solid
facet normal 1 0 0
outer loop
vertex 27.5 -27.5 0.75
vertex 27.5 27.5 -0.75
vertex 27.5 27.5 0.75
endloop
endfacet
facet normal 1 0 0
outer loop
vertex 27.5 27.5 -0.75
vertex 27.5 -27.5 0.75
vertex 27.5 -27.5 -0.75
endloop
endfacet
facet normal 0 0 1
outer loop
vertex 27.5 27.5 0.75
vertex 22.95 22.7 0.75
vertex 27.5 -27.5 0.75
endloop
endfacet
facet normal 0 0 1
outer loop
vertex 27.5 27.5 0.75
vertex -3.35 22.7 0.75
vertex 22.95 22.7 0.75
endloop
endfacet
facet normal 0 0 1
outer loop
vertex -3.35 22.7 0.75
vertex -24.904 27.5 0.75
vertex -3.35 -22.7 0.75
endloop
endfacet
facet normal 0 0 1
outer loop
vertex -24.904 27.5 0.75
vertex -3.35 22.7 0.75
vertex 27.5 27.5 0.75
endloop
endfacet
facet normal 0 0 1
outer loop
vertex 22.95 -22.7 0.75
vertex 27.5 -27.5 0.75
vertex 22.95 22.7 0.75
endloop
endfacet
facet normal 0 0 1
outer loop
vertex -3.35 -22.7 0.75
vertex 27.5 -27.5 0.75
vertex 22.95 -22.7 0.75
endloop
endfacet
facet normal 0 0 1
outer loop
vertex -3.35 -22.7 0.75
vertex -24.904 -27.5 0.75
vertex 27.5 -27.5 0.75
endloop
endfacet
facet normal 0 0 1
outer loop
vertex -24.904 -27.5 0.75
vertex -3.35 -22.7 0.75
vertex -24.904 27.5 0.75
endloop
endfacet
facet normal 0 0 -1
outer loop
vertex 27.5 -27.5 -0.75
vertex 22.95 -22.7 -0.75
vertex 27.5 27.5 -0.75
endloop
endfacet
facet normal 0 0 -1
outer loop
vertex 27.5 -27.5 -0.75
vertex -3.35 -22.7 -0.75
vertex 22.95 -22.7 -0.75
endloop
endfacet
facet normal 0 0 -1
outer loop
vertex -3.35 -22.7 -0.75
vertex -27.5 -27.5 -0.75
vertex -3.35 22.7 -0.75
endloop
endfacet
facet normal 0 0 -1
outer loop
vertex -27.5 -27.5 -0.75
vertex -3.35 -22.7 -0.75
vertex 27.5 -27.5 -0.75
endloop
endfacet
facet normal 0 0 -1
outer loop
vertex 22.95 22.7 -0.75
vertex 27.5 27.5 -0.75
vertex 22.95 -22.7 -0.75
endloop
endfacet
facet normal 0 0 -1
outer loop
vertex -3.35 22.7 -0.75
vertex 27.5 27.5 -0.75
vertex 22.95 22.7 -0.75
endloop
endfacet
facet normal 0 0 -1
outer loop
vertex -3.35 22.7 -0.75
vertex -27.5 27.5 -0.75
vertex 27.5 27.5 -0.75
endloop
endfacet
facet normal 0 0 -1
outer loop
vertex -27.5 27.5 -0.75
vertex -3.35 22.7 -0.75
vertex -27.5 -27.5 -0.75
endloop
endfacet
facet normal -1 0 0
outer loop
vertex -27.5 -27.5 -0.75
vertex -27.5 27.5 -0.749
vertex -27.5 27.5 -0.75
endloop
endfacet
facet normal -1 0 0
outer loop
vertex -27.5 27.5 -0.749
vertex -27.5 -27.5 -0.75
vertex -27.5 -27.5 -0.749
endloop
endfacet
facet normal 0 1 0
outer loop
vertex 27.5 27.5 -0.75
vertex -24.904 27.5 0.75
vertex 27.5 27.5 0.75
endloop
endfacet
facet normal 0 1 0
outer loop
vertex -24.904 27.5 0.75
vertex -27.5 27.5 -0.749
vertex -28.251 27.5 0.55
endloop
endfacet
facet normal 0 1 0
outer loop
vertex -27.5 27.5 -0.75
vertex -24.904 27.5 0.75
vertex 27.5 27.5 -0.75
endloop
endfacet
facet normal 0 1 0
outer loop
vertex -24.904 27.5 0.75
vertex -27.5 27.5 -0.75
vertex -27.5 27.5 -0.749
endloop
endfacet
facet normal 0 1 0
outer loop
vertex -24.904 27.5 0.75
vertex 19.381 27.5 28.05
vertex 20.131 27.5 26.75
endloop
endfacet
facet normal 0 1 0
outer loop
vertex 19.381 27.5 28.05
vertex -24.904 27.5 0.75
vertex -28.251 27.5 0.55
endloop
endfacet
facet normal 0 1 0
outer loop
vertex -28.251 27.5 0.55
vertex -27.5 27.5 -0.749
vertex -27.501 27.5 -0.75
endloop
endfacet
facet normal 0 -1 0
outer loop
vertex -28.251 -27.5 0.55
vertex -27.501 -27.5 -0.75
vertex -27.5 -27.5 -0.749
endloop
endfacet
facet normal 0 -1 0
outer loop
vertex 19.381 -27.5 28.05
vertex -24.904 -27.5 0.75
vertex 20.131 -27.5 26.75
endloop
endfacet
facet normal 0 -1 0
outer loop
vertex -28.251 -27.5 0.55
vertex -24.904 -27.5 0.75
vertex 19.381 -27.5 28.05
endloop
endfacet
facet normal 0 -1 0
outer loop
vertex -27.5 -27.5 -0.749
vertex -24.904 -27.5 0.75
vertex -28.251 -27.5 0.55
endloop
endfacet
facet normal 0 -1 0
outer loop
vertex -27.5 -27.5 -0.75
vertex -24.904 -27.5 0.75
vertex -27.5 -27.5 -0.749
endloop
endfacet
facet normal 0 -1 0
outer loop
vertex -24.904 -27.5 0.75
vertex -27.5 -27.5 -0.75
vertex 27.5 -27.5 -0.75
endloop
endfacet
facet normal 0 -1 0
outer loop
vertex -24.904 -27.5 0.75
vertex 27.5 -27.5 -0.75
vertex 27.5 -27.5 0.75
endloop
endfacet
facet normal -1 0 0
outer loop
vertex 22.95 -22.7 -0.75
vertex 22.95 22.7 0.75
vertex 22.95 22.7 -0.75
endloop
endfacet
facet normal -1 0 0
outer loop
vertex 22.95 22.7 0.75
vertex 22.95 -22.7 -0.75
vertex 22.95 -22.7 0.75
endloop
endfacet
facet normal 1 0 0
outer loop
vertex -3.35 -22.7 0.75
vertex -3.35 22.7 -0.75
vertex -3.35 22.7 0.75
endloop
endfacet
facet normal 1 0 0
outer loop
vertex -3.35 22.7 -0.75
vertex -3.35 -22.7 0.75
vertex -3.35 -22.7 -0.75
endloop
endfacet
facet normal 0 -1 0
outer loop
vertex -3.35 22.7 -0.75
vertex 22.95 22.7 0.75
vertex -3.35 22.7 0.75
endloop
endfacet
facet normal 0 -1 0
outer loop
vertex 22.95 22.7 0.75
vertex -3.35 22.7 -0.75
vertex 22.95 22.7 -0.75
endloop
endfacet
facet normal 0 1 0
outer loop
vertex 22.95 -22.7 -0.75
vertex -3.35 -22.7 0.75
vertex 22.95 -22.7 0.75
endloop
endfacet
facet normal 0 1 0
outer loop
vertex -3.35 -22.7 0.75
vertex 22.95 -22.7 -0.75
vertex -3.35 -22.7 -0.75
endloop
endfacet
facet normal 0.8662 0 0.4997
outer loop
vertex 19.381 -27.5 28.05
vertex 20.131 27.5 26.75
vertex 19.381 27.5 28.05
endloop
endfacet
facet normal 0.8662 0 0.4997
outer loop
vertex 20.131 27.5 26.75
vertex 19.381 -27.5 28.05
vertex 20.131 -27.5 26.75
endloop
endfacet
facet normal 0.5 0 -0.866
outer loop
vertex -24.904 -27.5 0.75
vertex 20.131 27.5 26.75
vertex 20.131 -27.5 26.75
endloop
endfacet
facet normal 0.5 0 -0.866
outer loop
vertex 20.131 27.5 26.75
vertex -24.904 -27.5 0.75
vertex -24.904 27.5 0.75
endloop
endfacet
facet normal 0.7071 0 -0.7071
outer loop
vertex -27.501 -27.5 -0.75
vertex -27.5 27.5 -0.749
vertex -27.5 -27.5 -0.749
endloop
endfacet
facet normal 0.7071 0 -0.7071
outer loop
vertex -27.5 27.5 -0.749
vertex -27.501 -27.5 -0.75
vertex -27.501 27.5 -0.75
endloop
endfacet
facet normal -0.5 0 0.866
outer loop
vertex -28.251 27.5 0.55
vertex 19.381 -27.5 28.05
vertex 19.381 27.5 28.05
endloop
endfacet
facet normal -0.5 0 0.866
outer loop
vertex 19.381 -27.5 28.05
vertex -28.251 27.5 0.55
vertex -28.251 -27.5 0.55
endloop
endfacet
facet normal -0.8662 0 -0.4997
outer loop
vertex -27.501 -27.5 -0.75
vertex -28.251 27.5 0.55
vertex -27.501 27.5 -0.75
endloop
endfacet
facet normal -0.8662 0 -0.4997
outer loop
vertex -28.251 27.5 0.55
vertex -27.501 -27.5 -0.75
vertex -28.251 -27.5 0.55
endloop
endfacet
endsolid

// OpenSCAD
thickness = 1.5;
width = 55;
length = 55;

difference(){
	cube([length, width, thickness], center=true);
	#translate([9.8, 0, 0])
		cube([26.3, 45.4, thickness], center=true);
}

translate([-4.06, 0, 13.65])
	rotate([0, 60, 0])
		cube([thickness, width, length], center=true);
